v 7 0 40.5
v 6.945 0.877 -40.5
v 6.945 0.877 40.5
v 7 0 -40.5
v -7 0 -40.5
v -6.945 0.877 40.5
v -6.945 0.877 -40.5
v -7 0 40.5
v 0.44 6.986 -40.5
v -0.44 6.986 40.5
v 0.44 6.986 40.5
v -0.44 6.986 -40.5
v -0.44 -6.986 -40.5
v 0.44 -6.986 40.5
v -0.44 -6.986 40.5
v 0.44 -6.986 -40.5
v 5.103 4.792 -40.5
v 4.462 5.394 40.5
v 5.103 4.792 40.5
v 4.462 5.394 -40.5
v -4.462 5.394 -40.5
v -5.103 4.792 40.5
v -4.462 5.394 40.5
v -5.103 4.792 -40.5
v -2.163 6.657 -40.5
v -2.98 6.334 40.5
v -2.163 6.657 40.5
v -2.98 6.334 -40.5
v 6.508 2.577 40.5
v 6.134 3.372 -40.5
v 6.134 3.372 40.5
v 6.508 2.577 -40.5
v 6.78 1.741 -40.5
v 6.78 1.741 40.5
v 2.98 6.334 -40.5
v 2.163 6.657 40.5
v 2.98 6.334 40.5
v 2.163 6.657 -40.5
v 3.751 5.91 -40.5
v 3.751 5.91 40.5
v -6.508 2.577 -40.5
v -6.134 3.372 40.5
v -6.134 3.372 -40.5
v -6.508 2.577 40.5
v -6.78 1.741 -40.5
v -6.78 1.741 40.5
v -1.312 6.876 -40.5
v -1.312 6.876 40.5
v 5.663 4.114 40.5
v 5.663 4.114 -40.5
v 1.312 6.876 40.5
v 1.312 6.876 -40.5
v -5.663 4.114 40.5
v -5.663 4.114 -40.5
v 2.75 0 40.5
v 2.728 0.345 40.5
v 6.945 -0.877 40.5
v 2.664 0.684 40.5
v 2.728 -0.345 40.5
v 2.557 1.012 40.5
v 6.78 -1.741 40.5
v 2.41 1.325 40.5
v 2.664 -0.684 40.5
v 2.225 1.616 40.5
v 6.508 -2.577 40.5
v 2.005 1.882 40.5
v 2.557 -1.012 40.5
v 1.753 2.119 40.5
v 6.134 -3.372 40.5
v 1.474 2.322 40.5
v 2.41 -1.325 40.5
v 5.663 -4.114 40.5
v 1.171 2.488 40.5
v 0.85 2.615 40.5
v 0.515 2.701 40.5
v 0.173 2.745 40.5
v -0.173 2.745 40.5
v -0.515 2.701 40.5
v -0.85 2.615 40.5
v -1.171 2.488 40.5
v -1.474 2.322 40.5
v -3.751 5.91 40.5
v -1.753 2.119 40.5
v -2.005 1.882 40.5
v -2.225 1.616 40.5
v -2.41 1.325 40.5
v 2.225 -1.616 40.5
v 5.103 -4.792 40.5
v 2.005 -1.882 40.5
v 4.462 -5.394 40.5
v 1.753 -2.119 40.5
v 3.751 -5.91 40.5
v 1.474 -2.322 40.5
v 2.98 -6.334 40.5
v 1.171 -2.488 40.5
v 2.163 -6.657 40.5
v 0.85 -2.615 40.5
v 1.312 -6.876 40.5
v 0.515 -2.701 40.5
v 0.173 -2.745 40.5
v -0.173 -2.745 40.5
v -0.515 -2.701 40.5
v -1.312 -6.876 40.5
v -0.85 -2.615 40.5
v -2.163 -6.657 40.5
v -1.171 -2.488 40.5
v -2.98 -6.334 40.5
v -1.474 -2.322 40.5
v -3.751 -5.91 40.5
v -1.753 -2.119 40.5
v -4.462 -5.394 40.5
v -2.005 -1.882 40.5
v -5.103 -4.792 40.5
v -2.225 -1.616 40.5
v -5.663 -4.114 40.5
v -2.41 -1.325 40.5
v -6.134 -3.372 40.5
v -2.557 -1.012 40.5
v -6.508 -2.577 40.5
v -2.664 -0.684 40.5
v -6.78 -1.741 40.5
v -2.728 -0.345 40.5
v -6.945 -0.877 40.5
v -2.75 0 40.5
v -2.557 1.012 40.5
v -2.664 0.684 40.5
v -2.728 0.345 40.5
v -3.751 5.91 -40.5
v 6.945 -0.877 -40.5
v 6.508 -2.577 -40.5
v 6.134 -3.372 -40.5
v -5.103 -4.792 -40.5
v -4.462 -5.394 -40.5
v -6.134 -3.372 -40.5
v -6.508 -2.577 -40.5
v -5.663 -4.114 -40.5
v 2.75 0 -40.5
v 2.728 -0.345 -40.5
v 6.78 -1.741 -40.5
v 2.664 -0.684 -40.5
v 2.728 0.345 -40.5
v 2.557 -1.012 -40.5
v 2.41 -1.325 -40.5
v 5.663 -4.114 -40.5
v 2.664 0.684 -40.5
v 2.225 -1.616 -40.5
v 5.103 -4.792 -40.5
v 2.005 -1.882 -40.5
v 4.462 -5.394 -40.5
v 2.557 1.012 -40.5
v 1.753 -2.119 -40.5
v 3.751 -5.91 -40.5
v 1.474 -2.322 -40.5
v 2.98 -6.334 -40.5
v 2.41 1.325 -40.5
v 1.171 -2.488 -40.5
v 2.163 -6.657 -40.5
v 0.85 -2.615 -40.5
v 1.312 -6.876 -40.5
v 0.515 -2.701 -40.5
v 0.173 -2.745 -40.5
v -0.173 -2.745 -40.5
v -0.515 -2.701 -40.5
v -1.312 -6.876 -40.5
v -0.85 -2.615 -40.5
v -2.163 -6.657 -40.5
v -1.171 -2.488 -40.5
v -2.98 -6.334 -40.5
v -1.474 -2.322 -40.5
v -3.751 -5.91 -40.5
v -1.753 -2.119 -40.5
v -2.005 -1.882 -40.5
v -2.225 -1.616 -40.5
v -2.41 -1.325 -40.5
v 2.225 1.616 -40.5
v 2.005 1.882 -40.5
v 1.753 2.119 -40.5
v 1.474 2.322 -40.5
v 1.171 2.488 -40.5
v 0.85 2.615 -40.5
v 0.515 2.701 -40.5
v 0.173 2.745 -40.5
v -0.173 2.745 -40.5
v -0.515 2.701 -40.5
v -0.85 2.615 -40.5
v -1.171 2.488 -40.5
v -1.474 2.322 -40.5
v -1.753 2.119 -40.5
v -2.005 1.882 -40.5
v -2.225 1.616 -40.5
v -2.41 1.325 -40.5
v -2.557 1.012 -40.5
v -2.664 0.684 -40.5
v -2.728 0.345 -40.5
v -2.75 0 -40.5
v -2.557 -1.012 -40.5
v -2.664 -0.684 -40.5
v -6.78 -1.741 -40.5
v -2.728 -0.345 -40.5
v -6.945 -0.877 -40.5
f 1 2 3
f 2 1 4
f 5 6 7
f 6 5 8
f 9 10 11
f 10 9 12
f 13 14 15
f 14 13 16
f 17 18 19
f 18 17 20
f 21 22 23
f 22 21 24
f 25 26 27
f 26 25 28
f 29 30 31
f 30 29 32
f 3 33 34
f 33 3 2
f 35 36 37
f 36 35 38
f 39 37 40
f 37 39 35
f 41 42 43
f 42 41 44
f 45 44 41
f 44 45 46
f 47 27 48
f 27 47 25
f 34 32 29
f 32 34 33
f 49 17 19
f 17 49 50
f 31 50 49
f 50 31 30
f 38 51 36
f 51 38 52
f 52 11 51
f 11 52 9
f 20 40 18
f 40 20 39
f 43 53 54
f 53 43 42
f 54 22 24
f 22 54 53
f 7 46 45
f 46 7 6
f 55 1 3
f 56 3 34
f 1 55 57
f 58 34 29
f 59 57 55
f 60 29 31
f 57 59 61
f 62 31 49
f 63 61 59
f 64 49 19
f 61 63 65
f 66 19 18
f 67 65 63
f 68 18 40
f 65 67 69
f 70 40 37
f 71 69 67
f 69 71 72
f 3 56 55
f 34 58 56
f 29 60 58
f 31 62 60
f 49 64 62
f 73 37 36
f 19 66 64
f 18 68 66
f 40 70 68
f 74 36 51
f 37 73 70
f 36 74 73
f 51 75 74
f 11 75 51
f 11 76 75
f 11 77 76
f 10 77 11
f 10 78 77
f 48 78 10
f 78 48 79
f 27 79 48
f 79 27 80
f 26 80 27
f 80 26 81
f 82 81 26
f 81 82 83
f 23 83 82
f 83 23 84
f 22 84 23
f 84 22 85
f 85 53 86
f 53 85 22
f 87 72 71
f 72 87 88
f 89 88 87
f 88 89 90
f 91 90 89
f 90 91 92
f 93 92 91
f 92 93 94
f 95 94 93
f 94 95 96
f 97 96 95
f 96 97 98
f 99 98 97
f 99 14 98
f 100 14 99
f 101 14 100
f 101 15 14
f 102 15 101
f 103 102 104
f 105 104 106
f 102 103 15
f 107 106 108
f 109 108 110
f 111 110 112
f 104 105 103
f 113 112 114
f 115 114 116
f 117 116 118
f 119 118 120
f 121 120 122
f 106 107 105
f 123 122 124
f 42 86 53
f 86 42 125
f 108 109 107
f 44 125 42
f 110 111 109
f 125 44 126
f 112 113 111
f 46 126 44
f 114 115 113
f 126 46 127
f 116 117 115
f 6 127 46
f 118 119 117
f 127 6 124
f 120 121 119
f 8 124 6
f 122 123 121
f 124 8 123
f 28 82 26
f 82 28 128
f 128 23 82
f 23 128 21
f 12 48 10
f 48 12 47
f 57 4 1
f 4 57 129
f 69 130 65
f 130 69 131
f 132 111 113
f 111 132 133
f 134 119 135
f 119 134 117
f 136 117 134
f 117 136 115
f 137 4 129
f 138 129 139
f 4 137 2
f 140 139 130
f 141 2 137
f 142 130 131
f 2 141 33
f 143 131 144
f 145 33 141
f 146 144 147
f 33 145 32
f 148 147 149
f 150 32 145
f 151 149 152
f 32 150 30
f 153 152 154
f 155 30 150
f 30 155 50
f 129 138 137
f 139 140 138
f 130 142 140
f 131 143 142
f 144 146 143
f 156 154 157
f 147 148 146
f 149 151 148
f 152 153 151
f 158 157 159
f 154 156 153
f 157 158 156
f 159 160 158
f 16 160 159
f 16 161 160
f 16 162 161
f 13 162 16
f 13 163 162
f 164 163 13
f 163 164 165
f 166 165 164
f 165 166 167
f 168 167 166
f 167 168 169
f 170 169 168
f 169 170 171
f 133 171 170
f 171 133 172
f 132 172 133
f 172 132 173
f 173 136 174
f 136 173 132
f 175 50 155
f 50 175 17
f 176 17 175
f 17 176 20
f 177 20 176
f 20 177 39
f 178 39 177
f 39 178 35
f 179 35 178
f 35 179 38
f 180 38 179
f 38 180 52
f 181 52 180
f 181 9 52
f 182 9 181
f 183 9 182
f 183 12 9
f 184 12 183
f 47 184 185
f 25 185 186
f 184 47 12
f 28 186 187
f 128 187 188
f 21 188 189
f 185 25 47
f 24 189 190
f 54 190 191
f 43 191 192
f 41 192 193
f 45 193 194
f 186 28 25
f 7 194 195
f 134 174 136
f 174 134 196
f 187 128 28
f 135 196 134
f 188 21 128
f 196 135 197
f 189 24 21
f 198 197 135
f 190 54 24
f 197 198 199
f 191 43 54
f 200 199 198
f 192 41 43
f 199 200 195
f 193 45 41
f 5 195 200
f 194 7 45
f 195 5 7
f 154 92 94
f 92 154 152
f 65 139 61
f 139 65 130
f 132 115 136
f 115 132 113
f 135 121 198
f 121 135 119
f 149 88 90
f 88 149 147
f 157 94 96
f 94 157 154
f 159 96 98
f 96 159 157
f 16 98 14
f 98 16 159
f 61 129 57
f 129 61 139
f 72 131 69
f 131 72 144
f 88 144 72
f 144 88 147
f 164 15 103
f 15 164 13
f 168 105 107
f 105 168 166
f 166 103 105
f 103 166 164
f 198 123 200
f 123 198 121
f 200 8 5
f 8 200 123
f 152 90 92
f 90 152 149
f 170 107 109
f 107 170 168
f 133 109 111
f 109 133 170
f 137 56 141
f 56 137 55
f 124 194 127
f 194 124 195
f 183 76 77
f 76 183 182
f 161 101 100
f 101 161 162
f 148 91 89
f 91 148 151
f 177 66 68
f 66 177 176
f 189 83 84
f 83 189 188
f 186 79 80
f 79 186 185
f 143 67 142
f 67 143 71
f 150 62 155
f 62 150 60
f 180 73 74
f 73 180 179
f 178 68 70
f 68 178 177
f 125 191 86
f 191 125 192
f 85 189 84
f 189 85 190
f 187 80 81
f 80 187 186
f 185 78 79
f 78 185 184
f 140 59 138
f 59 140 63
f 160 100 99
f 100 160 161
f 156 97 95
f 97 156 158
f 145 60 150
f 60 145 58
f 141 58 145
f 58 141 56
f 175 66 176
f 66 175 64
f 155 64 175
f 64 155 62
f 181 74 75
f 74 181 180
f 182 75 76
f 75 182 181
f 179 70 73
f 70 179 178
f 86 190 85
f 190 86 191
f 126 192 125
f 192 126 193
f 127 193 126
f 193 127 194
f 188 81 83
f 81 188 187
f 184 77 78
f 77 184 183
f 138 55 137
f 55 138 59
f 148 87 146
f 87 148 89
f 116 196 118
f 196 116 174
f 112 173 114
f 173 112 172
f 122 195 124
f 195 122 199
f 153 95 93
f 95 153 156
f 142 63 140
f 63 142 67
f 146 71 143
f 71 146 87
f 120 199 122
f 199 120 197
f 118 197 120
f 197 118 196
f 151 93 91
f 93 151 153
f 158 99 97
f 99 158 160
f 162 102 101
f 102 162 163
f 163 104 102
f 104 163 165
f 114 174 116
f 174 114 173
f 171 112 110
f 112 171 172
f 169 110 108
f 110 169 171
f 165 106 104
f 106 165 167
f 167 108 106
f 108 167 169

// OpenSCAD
$fn = 50;


difference() {
	union() {
		translate(v = [0, 0, -40.5000000000]) {
			cylinder(h = 81, r = 7.0000000000);
		}
	}
	union() {
		translate(v = [0, 0, -100.0000000000]) {
			cylinder(h = 200, r = 2.7500000000);
		}
	}
}
